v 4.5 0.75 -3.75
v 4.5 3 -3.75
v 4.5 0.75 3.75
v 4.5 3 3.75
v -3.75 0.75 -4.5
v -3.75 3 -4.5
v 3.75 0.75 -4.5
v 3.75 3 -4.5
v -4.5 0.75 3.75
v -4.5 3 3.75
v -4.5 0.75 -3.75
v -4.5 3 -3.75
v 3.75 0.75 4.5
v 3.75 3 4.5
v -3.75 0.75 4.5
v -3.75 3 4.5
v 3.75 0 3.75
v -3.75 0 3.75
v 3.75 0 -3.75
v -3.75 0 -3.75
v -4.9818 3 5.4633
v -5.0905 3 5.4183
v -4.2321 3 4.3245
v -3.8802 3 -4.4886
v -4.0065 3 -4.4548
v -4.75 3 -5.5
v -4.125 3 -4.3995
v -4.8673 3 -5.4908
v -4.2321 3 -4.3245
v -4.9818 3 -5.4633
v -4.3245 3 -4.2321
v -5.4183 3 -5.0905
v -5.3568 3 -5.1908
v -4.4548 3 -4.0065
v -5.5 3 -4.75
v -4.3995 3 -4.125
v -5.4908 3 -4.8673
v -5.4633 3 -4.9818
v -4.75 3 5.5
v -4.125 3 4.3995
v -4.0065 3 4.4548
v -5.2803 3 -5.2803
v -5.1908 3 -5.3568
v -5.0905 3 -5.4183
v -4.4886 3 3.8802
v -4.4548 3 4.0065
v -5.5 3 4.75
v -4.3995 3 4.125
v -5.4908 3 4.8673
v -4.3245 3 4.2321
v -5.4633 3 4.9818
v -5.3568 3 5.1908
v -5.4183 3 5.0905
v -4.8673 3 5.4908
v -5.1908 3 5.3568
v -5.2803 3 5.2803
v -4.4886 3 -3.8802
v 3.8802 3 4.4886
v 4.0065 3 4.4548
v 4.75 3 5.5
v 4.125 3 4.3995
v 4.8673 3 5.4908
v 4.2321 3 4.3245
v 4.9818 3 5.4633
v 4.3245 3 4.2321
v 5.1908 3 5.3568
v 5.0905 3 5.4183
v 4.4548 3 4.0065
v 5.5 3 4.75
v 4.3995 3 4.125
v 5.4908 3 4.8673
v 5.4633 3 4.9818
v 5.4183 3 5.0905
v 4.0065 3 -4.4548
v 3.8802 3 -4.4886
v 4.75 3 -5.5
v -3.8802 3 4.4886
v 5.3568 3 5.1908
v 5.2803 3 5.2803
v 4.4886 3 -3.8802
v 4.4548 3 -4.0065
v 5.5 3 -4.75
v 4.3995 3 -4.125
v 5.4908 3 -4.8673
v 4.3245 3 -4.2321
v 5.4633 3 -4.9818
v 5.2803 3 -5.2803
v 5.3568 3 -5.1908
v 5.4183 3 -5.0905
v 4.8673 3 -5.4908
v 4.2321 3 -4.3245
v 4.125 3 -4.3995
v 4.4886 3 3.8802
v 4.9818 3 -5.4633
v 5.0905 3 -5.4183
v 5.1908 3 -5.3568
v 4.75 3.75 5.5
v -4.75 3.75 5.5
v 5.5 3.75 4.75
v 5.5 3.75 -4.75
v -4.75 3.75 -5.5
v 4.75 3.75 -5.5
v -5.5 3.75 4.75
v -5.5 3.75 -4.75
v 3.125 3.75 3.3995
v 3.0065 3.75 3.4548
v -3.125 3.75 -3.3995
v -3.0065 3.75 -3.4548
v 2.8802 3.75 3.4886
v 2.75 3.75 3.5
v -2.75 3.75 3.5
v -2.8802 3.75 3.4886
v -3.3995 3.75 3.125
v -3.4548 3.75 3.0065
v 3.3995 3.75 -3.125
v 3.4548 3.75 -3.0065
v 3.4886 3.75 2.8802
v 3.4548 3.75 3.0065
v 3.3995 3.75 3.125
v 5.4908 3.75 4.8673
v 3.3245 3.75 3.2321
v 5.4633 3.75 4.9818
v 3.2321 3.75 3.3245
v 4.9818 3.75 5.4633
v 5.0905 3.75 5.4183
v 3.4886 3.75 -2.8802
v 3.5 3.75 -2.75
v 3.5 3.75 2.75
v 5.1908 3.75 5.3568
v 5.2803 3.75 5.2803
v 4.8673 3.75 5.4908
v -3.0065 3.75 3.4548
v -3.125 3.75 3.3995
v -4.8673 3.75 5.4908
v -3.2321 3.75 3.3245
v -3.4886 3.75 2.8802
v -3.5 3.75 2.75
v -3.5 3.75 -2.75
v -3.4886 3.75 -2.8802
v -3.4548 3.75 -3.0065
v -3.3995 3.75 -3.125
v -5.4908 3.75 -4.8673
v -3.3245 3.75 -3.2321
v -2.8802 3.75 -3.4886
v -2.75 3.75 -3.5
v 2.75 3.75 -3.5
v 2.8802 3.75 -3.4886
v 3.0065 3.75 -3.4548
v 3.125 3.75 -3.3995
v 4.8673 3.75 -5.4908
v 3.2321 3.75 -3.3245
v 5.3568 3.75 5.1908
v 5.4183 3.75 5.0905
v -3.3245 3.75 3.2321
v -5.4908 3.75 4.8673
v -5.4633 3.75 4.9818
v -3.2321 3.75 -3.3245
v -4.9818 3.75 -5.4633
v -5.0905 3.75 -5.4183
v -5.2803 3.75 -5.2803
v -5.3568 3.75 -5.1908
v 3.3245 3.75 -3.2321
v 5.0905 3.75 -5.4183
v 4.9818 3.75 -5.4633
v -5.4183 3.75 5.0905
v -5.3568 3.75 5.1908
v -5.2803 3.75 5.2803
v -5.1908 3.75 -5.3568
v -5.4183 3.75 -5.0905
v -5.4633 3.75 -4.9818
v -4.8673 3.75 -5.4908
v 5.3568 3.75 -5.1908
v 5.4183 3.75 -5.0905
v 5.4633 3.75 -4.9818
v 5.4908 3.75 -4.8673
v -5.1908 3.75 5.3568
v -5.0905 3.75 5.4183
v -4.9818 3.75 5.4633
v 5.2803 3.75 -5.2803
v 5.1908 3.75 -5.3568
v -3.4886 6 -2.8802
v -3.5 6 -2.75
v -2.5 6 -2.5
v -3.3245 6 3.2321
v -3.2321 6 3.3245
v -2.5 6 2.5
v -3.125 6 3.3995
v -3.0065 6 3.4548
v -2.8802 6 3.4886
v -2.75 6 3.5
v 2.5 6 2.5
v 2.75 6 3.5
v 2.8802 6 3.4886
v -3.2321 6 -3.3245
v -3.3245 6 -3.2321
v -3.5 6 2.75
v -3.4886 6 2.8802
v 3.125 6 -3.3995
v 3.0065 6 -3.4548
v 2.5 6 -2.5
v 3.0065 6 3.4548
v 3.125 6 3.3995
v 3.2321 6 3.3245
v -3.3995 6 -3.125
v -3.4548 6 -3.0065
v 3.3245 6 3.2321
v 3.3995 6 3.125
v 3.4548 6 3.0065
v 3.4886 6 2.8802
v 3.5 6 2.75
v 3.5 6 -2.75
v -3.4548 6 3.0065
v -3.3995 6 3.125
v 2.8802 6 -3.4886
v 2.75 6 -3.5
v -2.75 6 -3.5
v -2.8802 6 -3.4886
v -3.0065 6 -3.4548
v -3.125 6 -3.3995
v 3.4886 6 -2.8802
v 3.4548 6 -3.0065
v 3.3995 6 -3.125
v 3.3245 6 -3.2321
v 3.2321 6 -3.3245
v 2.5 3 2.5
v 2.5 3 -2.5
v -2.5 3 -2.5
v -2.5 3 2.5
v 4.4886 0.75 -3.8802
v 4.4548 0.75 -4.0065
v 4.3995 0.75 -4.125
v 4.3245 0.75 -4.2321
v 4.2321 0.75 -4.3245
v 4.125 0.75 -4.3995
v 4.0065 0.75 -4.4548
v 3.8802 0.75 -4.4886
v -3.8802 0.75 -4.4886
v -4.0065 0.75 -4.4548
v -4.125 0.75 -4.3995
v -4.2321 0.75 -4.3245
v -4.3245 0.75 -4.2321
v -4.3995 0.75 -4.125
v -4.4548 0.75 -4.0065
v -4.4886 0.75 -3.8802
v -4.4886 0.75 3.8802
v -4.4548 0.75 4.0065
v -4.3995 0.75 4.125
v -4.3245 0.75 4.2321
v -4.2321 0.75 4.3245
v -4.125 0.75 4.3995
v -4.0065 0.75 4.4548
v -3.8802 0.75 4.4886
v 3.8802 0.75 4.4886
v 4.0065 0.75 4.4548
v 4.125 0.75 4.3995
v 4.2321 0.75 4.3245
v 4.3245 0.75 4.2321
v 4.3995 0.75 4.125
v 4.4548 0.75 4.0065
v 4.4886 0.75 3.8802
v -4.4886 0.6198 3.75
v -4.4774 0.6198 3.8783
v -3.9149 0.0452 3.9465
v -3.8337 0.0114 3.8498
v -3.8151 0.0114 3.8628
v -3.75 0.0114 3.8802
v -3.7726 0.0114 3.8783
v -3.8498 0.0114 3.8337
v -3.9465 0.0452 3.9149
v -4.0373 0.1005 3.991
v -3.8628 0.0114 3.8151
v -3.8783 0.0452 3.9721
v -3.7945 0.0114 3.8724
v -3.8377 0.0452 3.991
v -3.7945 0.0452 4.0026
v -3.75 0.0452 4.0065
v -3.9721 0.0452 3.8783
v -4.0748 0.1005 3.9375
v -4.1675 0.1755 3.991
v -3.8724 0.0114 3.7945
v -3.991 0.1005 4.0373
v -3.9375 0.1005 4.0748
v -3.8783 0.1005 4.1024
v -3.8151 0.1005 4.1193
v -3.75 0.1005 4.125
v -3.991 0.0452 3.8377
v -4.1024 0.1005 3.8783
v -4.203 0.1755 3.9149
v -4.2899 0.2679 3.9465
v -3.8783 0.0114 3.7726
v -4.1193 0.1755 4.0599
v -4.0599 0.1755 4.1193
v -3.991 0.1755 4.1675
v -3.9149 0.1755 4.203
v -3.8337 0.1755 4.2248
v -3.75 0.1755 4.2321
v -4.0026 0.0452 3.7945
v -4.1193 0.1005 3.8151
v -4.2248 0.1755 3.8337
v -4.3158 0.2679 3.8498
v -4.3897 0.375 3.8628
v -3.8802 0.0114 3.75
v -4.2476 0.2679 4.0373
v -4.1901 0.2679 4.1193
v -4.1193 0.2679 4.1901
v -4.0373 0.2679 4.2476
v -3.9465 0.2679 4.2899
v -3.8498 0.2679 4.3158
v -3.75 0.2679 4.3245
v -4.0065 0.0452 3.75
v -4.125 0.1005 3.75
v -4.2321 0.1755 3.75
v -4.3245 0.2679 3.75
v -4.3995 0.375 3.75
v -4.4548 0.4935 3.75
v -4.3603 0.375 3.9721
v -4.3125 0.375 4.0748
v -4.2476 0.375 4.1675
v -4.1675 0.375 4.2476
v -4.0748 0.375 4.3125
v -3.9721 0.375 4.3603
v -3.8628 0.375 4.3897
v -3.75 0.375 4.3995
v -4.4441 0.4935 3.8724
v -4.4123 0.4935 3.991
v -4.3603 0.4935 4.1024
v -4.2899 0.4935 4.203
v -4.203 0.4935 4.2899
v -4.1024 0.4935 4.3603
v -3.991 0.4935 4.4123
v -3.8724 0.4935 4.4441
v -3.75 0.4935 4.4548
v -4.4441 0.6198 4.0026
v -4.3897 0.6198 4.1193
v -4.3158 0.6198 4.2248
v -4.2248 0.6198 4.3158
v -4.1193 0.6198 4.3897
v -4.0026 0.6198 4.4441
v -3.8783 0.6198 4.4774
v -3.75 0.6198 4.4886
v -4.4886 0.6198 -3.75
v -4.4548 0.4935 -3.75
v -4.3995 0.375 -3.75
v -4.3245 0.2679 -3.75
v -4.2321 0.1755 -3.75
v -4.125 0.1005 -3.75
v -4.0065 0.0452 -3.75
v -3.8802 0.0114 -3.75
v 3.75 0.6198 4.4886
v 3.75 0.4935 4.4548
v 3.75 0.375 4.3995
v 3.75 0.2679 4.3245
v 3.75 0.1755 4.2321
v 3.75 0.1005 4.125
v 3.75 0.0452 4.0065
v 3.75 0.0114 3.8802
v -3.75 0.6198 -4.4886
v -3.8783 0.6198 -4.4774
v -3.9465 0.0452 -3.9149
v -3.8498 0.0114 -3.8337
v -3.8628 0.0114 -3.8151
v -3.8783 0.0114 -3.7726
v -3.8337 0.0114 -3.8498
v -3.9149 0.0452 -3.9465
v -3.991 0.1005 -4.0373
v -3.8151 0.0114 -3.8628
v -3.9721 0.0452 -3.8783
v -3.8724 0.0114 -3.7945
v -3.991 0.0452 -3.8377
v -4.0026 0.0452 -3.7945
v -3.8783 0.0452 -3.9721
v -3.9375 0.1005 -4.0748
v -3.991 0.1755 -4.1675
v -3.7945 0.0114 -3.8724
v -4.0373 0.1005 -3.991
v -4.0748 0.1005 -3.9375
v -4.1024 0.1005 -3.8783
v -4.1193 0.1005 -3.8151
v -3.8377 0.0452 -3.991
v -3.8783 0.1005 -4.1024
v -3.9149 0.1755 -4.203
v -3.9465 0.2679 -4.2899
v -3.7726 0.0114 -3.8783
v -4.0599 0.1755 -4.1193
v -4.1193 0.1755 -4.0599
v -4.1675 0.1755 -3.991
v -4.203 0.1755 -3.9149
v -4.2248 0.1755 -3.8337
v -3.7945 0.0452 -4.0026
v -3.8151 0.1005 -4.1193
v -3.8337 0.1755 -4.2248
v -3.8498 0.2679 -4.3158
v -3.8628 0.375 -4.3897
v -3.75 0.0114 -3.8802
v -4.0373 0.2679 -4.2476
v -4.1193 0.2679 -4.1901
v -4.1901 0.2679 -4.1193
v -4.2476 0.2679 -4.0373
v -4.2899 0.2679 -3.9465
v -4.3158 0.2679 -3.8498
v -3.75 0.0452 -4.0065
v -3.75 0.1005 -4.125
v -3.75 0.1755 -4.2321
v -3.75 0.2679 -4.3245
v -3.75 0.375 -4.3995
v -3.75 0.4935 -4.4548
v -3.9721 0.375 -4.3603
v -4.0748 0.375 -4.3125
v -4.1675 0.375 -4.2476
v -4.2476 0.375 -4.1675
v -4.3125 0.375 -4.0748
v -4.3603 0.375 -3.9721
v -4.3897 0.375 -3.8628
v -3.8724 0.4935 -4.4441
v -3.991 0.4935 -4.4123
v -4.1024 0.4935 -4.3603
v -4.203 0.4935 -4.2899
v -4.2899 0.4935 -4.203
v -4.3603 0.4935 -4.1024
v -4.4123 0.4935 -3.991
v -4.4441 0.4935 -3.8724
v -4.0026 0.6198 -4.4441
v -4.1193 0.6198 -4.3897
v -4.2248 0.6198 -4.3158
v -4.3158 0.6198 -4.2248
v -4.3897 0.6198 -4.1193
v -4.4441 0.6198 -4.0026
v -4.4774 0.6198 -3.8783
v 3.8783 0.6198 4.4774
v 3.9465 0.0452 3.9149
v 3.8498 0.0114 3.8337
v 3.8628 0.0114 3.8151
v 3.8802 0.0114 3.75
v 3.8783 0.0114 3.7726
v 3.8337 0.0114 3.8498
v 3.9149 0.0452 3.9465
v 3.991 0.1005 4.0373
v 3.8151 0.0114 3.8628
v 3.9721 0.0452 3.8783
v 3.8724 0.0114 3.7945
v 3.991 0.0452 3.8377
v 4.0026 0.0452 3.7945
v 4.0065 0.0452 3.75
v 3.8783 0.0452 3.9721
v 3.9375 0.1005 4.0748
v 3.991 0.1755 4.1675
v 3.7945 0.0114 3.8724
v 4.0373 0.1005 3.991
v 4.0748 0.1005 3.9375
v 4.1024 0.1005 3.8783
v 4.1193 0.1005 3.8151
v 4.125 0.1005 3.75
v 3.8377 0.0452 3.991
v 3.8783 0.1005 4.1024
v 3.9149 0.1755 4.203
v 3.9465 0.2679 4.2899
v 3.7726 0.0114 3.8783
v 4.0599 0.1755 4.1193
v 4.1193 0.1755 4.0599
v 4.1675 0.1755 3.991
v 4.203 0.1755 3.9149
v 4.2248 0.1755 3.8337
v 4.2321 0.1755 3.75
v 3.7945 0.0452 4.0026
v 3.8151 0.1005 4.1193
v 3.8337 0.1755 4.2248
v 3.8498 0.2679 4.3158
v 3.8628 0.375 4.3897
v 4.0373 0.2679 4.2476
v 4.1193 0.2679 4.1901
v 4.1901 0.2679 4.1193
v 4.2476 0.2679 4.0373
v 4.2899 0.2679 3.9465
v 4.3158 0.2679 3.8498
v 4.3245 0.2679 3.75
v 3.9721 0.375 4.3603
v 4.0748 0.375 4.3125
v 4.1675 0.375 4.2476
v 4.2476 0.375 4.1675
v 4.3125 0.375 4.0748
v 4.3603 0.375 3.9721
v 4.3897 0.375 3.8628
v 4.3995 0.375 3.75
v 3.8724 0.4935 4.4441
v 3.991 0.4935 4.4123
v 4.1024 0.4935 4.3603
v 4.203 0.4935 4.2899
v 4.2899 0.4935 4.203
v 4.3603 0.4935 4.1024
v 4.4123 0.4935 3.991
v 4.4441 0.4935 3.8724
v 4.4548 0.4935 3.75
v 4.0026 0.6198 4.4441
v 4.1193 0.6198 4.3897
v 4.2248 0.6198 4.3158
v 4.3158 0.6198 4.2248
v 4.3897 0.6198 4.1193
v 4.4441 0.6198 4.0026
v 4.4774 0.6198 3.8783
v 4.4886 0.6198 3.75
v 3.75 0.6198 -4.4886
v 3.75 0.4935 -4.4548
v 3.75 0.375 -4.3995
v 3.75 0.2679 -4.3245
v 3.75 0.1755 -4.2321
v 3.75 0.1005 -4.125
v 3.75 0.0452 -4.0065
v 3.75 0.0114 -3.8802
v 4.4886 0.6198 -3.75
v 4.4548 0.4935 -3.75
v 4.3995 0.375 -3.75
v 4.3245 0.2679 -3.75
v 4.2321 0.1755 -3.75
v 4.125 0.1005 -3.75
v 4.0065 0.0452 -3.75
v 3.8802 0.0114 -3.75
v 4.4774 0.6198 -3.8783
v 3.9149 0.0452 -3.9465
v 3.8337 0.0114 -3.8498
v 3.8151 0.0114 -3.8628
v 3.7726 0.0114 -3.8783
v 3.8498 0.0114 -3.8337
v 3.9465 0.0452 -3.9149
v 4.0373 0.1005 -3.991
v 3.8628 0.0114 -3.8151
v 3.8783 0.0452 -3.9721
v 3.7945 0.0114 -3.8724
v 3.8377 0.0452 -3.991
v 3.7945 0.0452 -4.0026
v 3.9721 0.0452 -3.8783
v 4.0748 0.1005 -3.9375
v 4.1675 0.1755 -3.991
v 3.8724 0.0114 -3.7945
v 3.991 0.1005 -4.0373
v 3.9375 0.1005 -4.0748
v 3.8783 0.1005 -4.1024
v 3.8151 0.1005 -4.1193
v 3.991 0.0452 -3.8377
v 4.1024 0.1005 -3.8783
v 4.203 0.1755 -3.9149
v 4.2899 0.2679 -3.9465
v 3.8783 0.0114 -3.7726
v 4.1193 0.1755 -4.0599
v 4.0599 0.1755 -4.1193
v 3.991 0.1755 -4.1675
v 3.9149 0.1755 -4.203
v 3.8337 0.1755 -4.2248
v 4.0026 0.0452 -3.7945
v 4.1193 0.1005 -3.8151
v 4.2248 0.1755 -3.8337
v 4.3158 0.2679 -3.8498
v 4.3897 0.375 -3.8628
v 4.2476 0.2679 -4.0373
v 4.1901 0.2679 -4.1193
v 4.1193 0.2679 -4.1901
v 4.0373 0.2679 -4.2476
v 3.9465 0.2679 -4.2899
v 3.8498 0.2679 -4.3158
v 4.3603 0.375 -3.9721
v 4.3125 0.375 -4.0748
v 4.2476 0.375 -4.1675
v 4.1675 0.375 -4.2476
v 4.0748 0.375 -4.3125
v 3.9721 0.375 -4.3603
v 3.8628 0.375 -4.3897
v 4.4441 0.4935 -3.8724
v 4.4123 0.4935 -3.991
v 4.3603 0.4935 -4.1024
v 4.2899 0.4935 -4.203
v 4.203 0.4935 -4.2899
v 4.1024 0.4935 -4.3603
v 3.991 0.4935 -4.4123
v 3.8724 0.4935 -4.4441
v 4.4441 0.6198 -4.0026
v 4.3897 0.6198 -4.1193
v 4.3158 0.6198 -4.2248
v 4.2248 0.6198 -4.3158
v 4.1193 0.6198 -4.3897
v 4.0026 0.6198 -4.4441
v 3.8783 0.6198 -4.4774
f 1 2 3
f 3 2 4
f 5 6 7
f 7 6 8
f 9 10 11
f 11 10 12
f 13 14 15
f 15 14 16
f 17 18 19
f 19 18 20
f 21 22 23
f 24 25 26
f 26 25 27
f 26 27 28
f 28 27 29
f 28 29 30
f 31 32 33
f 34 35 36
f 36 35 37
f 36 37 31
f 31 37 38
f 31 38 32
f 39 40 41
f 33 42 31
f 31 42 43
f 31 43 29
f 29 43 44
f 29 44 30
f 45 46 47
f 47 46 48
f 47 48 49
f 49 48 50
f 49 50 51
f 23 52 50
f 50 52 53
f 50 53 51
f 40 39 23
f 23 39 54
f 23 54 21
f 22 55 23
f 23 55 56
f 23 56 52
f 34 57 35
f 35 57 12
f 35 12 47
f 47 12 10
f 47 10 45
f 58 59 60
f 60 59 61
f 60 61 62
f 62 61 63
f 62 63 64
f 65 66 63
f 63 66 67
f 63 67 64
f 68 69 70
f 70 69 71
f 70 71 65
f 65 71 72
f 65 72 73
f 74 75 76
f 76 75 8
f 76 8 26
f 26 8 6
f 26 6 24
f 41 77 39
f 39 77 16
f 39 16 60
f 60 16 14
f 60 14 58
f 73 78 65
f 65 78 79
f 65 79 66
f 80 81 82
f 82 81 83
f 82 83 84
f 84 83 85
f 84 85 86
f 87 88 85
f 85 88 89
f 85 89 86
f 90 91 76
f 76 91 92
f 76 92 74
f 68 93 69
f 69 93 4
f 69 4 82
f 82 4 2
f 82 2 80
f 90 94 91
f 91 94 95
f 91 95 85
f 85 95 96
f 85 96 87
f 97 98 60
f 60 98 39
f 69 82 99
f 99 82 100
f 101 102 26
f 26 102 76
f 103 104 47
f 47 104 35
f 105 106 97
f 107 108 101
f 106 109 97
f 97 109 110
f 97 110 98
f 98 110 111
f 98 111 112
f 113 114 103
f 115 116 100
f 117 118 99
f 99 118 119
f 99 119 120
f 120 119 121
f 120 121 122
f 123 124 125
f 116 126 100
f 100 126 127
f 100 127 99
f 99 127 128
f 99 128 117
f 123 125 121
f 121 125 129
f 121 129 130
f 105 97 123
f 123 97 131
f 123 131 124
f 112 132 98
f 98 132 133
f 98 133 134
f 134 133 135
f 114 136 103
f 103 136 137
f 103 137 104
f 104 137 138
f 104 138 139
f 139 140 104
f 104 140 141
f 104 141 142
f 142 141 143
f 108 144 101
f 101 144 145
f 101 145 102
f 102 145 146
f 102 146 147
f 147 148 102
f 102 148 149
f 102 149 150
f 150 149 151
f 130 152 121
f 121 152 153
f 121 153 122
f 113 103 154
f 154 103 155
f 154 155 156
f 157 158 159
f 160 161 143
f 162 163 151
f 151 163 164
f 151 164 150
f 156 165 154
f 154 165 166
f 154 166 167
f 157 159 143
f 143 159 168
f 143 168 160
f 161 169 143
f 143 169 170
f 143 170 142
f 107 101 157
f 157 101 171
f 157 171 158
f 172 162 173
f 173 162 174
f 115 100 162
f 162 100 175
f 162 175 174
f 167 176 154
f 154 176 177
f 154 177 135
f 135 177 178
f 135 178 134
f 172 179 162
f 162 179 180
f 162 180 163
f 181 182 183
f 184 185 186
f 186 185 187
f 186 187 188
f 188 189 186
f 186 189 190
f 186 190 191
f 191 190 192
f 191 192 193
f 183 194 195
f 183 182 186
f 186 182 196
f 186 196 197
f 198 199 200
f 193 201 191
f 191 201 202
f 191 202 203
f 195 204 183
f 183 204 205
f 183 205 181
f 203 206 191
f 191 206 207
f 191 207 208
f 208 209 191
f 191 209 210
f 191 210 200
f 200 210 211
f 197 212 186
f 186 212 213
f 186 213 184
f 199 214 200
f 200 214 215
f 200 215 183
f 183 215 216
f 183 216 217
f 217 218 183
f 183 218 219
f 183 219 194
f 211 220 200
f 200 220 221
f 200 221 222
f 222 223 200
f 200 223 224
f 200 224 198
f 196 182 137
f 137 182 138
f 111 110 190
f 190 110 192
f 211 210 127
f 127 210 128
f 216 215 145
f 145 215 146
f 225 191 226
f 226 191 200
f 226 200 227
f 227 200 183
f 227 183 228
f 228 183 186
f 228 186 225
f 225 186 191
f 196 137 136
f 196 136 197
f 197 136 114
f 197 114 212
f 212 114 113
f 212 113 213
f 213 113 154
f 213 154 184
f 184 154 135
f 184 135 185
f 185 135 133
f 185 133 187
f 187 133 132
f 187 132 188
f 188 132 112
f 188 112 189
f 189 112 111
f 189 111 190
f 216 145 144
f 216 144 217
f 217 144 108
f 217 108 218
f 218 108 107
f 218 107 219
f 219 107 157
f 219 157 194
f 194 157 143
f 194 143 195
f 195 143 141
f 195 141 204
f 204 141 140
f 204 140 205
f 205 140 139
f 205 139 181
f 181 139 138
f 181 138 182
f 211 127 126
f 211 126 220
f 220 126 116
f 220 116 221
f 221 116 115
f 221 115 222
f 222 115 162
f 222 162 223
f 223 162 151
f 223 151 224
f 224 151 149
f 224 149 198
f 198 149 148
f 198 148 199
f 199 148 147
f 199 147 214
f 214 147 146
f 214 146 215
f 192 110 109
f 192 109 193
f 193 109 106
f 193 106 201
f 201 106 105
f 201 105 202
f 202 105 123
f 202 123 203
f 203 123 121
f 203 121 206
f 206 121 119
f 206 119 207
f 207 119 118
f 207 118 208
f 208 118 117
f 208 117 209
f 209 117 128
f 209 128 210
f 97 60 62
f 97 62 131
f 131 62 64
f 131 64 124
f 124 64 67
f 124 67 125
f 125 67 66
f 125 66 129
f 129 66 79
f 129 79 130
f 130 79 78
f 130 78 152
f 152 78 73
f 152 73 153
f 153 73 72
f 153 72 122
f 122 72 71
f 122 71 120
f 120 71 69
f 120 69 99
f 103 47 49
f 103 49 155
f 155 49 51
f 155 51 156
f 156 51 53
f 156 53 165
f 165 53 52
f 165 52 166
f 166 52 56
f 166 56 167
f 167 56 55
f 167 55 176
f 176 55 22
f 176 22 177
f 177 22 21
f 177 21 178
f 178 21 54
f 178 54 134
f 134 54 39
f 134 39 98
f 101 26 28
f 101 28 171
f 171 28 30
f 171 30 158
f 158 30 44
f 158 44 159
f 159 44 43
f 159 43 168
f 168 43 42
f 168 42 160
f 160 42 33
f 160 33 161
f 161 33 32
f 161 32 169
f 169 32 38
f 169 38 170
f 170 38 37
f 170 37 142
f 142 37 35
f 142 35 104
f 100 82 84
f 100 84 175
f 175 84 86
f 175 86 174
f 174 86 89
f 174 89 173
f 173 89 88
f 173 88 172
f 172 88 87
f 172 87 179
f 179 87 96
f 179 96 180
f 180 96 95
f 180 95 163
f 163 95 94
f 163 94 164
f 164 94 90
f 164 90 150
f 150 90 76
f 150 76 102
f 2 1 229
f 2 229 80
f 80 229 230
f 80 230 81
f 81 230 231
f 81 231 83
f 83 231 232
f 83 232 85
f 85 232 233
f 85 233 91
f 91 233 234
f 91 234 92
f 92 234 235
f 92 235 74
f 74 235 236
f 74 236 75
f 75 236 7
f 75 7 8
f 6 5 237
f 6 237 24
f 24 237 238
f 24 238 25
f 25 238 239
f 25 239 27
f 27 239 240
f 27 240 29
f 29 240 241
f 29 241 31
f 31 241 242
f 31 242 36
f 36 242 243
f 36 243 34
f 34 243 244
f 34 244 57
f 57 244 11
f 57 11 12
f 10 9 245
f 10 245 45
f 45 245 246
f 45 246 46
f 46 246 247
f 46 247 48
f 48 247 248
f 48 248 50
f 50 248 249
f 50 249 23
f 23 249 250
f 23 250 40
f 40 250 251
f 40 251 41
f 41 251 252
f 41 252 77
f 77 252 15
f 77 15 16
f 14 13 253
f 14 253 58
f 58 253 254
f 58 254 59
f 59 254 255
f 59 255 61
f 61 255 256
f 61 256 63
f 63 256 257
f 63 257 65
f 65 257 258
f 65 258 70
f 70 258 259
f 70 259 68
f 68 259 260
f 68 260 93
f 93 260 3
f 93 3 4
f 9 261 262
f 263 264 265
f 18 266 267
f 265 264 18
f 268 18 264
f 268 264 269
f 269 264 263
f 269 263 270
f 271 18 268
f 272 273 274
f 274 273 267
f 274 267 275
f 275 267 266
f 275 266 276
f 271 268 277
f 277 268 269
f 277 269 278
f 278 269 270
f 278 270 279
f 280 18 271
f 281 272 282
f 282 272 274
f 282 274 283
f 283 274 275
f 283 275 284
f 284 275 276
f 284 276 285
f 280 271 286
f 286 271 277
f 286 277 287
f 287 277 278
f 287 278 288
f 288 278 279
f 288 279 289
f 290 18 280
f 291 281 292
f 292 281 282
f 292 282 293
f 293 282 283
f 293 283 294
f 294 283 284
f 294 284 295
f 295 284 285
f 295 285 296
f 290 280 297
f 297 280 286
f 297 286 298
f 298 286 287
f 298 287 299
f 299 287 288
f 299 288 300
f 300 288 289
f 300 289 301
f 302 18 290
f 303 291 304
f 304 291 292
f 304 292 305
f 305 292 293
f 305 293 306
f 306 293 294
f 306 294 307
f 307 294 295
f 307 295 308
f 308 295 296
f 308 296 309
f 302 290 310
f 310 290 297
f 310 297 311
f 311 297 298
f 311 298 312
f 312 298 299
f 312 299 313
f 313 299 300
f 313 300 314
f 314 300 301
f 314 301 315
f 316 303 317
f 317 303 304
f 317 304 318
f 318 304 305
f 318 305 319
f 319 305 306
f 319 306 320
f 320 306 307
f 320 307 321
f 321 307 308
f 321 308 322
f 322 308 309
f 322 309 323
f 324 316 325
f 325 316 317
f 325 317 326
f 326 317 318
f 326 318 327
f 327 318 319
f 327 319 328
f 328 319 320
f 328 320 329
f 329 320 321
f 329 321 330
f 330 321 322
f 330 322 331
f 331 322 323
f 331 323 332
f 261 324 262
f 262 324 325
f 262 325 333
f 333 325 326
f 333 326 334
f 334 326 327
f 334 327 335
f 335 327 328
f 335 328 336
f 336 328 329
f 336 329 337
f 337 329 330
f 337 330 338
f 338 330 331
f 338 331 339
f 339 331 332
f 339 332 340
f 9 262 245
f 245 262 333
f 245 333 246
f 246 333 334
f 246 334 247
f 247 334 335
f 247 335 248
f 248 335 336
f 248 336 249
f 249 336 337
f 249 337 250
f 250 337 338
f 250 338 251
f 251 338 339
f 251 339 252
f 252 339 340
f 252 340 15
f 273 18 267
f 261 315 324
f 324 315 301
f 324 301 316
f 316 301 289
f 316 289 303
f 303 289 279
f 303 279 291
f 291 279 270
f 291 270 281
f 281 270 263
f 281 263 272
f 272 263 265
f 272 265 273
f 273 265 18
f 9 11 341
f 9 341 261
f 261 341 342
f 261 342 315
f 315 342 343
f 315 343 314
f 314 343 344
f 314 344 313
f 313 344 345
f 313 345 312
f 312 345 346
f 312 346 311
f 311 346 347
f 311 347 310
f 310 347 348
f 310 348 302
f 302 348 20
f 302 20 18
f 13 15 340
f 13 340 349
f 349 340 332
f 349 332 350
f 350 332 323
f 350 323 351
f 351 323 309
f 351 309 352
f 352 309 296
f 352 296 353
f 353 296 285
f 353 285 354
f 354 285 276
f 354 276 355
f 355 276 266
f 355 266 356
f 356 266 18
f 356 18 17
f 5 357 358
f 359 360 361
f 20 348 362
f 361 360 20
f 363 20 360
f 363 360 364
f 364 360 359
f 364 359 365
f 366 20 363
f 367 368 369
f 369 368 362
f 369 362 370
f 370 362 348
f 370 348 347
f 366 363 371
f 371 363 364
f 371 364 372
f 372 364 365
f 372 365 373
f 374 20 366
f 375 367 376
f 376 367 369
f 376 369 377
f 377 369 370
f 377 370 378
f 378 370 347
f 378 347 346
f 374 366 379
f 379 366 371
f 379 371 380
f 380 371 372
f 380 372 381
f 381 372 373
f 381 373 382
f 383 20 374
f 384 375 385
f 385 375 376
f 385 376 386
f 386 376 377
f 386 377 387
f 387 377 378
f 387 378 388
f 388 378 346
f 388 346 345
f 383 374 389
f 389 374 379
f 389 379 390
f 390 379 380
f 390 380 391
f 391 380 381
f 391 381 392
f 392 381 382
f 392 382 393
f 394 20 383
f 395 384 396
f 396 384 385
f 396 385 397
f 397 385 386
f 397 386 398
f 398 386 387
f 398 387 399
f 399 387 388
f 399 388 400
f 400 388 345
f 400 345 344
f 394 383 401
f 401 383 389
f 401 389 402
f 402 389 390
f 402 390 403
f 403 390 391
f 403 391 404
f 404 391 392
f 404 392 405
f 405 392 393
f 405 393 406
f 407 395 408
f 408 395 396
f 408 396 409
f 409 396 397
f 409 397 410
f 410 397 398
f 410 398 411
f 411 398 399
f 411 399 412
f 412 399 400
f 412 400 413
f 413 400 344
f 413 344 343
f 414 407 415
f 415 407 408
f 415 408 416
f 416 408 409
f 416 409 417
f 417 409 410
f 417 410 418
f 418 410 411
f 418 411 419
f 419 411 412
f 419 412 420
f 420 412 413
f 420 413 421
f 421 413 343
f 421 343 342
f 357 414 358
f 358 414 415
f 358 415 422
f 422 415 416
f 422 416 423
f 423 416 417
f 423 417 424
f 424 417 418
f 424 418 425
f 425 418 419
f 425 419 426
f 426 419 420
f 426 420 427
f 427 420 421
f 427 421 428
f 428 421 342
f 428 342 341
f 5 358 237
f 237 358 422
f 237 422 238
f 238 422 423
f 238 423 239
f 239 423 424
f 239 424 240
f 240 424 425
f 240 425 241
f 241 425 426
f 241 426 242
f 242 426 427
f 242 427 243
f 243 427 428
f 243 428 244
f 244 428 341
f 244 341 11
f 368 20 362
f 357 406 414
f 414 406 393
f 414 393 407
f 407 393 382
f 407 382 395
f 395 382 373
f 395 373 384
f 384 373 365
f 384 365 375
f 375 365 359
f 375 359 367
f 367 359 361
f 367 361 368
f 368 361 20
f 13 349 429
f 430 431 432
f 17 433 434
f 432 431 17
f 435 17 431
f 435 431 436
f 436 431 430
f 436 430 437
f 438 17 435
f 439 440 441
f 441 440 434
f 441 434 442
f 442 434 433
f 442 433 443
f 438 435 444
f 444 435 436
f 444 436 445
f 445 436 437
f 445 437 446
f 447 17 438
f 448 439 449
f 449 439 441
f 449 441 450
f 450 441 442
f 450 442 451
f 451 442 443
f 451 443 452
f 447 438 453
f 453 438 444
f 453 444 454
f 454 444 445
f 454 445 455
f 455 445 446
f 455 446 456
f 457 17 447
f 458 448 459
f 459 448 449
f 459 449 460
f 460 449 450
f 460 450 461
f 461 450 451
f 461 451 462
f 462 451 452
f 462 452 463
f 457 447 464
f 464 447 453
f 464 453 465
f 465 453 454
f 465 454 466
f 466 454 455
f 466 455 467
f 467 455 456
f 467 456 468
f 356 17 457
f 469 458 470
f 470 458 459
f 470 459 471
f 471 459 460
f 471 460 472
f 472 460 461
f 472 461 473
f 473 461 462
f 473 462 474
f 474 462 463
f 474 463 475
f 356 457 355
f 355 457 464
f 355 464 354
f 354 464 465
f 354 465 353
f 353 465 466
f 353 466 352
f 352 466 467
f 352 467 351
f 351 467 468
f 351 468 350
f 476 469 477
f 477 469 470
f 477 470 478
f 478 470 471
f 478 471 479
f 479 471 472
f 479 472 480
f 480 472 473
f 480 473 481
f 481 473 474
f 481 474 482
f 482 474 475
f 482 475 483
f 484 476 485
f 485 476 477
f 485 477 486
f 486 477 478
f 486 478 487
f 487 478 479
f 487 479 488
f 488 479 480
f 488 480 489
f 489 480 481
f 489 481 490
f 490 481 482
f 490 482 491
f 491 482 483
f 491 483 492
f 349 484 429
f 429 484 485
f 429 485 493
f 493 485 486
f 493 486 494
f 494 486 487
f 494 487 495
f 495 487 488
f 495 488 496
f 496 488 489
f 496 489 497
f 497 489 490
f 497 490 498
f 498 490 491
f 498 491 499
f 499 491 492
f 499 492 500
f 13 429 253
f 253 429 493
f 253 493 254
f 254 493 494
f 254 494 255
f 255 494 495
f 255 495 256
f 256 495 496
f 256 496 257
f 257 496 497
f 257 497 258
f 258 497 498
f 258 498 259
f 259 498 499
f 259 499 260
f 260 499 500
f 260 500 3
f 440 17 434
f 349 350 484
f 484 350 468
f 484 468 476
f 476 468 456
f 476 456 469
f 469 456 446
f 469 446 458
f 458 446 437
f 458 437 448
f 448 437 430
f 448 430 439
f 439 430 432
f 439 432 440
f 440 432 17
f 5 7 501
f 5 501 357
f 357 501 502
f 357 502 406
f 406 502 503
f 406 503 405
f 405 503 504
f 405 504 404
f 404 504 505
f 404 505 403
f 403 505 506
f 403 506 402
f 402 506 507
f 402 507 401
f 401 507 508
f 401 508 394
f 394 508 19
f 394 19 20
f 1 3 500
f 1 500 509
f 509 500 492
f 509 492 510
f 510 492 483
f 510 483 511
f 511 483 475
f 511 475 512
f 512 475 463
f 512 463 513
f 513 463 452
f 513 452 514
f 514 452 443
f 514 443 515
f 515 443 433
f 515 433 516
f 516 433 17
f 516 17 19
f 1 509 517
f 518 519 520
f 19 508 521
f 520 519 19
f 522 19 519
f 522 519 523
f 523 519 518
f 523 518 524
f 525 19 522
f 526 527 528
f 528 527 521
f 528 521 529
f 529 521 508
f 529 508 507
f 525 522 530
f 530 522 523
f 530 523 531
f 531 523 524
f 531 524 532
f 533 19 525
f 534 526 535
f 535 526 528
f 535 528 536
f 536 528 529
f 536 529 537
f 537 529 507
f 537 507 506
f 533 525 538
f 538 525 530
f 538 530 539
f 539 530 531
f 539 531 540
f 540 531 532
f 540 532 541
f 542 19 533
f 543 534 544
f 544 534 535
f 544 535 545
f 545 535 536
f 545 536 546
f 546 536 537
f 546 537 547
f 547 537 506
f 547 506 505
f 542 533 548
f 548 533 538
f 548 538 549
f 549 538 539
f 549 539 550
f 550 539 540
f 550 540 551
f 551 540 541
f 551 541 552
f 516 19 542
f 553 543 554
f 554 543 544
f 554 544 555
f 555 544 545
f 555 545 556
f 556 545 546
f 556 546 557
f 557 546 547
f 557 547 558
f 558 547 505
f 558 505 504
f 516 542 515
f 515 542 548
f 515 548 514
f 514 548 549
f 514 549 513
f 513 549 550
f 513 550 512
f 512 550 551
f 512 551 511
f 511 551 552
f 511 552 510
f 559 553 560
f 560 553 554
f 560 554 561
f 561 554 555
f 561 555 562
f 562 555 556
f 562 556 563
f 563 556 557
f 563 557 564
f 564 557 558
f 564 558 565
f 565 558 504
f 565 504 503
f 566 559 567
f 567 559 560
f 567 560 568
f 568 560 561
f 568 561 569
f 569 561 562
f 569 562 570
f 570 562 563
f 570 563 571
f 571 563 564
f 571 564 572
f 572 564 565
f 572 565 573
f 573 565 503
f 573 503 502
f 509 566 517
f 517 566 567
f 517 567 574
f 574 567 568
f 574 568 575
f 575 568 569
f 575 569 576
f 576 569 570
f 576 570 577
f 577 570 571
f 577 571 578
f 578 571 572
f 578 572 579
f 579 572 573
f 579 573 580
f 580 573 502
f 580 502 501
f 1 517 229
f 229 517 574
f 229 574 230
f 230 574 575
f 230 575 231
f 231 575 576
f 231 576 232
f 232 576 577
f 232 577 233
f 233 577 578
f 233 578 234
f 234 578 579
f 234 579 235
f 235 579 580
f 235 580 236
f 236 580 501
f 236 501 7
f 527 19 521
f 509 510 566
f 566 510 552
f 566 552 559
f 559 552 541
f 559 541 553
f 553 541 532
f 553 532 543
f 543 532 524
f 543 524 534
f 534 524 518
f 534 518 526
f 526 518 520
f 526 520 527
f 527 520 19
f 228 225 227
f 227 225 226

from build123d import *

# Parameters (mm, degrees)
SKETCH1_W           = 9
SKETCH1_H           = 9
BOSS_EXTRUDE1_DEPTH = 3
SKETCH2_W           = 11
SKETCH2_H           = 11
BOSS_EXTRUDE2_DEPTH = 0.75
SKETCH3_W           = 7
SKETCH3_H           = 7
SKETCH3_W_2         = 5
SKETCH3_H_2         = 5
BOSS_EXTRUDE3_DEPTH = 2.25
FILLET1_R           = 0.75
FILLET2_R           = 0.75
SKETCH4_W           = 5
SKETCH4_H           = 5
CUT_EXTRUDE1_DEPTH  = 0.75


with BuildPart() as part:
    # Sketch1 → Boss-Extrude1 (new body)
    with BuildSketch(Plane(origin=(0, 0, 0), x_dir=(1, 0, 0), z_dir=(0, 1, 0))):
        Rectangle(SKETCH1_W, SKETCH1_H)
    extrude(amount=BOSS_EXTRUDE1_DEPTH)

    # Sketch2 → Boss-Extrude2 (add)
    with BuildSketch(Plane(origin=(0, 3, 0), x_dir=(1, 0, 0), z_dir=(0, 1, 0))):
        Rectangle(SKETCH2_W, SKETCH2_H)
    extrude(amount=BOSS_EXTRUDE2_DEPTH)

    # Sketch3 → Boss-Extrude3 (add)
    with BuildSketch(Plane(origin=(0, 3.75, 0), x_dir=(1, 0, 0), z_dir=(0, 1, 0))):
        Rectangle(SKETCH3_W, SKETCH3_H)
        Rectangle(SKETCH3_W_2, SKETCH3_H_2, mode=Mode.SUBTRACT)
    extrude(amount=BOSS_EXTRUDE3_DEPTH)

    # Fillet1
    fillet1_edges = [part.edges().sort_by_distance(p)[0] for p in [
        (-5.5, 3.375, 5.5),
        (5.5, 3.375, 5.5),
        (5.5, 3.375, -5.5),
        (-5.5, 3.375, -5.5),
        (-3.5, 4.875, -3.5),
        (-3.5, 4.875, 3.5),
        (3.5, 4.875, 3.5),
        (3.5, 4.875, -3.5),
        (4.5, 1.5, 4.5),
        (-4.5, 1.5, 4.5),
        (-4.5, 1.5, -4.5),
        (4.5, 1.5, -4.5),
    ]]
    fillet(fillet1_edges, radius=FILLET1_R)

    # Fillet2
    fillet2_edges = [part.edges().sort_by_distance(p)[0] for p in [
        (0, 0, -4.5),
        (4.5, 0, 0),
        (0, 0, 4.5),
        (-4.5, 0, 0),
        (4.280330086, 0, 4.280330086),
        (-4.280330086, 0, 4.280330086),
        (-4.280330086, 0, -4.280330086),
        (4.280330086, 0, -4.280330086),
    ]]
    fillet(fillet2_edges, radius=FILLET2_R)

    # Sketch4 → Cut-Extrude1 (cut)
    with BuildSketch(Plane(origin=(0, 3.75, 0), x_dir=(1, 0, 0), z_dir=(0, 1, 0))):
        Rectangle(SKETCH4_W, SKETCH4_H)
    extrude(amount=-CUT_EXTRUDE1_DEPTH, mode=Mode.SUBTRACT)


solid = part.part
